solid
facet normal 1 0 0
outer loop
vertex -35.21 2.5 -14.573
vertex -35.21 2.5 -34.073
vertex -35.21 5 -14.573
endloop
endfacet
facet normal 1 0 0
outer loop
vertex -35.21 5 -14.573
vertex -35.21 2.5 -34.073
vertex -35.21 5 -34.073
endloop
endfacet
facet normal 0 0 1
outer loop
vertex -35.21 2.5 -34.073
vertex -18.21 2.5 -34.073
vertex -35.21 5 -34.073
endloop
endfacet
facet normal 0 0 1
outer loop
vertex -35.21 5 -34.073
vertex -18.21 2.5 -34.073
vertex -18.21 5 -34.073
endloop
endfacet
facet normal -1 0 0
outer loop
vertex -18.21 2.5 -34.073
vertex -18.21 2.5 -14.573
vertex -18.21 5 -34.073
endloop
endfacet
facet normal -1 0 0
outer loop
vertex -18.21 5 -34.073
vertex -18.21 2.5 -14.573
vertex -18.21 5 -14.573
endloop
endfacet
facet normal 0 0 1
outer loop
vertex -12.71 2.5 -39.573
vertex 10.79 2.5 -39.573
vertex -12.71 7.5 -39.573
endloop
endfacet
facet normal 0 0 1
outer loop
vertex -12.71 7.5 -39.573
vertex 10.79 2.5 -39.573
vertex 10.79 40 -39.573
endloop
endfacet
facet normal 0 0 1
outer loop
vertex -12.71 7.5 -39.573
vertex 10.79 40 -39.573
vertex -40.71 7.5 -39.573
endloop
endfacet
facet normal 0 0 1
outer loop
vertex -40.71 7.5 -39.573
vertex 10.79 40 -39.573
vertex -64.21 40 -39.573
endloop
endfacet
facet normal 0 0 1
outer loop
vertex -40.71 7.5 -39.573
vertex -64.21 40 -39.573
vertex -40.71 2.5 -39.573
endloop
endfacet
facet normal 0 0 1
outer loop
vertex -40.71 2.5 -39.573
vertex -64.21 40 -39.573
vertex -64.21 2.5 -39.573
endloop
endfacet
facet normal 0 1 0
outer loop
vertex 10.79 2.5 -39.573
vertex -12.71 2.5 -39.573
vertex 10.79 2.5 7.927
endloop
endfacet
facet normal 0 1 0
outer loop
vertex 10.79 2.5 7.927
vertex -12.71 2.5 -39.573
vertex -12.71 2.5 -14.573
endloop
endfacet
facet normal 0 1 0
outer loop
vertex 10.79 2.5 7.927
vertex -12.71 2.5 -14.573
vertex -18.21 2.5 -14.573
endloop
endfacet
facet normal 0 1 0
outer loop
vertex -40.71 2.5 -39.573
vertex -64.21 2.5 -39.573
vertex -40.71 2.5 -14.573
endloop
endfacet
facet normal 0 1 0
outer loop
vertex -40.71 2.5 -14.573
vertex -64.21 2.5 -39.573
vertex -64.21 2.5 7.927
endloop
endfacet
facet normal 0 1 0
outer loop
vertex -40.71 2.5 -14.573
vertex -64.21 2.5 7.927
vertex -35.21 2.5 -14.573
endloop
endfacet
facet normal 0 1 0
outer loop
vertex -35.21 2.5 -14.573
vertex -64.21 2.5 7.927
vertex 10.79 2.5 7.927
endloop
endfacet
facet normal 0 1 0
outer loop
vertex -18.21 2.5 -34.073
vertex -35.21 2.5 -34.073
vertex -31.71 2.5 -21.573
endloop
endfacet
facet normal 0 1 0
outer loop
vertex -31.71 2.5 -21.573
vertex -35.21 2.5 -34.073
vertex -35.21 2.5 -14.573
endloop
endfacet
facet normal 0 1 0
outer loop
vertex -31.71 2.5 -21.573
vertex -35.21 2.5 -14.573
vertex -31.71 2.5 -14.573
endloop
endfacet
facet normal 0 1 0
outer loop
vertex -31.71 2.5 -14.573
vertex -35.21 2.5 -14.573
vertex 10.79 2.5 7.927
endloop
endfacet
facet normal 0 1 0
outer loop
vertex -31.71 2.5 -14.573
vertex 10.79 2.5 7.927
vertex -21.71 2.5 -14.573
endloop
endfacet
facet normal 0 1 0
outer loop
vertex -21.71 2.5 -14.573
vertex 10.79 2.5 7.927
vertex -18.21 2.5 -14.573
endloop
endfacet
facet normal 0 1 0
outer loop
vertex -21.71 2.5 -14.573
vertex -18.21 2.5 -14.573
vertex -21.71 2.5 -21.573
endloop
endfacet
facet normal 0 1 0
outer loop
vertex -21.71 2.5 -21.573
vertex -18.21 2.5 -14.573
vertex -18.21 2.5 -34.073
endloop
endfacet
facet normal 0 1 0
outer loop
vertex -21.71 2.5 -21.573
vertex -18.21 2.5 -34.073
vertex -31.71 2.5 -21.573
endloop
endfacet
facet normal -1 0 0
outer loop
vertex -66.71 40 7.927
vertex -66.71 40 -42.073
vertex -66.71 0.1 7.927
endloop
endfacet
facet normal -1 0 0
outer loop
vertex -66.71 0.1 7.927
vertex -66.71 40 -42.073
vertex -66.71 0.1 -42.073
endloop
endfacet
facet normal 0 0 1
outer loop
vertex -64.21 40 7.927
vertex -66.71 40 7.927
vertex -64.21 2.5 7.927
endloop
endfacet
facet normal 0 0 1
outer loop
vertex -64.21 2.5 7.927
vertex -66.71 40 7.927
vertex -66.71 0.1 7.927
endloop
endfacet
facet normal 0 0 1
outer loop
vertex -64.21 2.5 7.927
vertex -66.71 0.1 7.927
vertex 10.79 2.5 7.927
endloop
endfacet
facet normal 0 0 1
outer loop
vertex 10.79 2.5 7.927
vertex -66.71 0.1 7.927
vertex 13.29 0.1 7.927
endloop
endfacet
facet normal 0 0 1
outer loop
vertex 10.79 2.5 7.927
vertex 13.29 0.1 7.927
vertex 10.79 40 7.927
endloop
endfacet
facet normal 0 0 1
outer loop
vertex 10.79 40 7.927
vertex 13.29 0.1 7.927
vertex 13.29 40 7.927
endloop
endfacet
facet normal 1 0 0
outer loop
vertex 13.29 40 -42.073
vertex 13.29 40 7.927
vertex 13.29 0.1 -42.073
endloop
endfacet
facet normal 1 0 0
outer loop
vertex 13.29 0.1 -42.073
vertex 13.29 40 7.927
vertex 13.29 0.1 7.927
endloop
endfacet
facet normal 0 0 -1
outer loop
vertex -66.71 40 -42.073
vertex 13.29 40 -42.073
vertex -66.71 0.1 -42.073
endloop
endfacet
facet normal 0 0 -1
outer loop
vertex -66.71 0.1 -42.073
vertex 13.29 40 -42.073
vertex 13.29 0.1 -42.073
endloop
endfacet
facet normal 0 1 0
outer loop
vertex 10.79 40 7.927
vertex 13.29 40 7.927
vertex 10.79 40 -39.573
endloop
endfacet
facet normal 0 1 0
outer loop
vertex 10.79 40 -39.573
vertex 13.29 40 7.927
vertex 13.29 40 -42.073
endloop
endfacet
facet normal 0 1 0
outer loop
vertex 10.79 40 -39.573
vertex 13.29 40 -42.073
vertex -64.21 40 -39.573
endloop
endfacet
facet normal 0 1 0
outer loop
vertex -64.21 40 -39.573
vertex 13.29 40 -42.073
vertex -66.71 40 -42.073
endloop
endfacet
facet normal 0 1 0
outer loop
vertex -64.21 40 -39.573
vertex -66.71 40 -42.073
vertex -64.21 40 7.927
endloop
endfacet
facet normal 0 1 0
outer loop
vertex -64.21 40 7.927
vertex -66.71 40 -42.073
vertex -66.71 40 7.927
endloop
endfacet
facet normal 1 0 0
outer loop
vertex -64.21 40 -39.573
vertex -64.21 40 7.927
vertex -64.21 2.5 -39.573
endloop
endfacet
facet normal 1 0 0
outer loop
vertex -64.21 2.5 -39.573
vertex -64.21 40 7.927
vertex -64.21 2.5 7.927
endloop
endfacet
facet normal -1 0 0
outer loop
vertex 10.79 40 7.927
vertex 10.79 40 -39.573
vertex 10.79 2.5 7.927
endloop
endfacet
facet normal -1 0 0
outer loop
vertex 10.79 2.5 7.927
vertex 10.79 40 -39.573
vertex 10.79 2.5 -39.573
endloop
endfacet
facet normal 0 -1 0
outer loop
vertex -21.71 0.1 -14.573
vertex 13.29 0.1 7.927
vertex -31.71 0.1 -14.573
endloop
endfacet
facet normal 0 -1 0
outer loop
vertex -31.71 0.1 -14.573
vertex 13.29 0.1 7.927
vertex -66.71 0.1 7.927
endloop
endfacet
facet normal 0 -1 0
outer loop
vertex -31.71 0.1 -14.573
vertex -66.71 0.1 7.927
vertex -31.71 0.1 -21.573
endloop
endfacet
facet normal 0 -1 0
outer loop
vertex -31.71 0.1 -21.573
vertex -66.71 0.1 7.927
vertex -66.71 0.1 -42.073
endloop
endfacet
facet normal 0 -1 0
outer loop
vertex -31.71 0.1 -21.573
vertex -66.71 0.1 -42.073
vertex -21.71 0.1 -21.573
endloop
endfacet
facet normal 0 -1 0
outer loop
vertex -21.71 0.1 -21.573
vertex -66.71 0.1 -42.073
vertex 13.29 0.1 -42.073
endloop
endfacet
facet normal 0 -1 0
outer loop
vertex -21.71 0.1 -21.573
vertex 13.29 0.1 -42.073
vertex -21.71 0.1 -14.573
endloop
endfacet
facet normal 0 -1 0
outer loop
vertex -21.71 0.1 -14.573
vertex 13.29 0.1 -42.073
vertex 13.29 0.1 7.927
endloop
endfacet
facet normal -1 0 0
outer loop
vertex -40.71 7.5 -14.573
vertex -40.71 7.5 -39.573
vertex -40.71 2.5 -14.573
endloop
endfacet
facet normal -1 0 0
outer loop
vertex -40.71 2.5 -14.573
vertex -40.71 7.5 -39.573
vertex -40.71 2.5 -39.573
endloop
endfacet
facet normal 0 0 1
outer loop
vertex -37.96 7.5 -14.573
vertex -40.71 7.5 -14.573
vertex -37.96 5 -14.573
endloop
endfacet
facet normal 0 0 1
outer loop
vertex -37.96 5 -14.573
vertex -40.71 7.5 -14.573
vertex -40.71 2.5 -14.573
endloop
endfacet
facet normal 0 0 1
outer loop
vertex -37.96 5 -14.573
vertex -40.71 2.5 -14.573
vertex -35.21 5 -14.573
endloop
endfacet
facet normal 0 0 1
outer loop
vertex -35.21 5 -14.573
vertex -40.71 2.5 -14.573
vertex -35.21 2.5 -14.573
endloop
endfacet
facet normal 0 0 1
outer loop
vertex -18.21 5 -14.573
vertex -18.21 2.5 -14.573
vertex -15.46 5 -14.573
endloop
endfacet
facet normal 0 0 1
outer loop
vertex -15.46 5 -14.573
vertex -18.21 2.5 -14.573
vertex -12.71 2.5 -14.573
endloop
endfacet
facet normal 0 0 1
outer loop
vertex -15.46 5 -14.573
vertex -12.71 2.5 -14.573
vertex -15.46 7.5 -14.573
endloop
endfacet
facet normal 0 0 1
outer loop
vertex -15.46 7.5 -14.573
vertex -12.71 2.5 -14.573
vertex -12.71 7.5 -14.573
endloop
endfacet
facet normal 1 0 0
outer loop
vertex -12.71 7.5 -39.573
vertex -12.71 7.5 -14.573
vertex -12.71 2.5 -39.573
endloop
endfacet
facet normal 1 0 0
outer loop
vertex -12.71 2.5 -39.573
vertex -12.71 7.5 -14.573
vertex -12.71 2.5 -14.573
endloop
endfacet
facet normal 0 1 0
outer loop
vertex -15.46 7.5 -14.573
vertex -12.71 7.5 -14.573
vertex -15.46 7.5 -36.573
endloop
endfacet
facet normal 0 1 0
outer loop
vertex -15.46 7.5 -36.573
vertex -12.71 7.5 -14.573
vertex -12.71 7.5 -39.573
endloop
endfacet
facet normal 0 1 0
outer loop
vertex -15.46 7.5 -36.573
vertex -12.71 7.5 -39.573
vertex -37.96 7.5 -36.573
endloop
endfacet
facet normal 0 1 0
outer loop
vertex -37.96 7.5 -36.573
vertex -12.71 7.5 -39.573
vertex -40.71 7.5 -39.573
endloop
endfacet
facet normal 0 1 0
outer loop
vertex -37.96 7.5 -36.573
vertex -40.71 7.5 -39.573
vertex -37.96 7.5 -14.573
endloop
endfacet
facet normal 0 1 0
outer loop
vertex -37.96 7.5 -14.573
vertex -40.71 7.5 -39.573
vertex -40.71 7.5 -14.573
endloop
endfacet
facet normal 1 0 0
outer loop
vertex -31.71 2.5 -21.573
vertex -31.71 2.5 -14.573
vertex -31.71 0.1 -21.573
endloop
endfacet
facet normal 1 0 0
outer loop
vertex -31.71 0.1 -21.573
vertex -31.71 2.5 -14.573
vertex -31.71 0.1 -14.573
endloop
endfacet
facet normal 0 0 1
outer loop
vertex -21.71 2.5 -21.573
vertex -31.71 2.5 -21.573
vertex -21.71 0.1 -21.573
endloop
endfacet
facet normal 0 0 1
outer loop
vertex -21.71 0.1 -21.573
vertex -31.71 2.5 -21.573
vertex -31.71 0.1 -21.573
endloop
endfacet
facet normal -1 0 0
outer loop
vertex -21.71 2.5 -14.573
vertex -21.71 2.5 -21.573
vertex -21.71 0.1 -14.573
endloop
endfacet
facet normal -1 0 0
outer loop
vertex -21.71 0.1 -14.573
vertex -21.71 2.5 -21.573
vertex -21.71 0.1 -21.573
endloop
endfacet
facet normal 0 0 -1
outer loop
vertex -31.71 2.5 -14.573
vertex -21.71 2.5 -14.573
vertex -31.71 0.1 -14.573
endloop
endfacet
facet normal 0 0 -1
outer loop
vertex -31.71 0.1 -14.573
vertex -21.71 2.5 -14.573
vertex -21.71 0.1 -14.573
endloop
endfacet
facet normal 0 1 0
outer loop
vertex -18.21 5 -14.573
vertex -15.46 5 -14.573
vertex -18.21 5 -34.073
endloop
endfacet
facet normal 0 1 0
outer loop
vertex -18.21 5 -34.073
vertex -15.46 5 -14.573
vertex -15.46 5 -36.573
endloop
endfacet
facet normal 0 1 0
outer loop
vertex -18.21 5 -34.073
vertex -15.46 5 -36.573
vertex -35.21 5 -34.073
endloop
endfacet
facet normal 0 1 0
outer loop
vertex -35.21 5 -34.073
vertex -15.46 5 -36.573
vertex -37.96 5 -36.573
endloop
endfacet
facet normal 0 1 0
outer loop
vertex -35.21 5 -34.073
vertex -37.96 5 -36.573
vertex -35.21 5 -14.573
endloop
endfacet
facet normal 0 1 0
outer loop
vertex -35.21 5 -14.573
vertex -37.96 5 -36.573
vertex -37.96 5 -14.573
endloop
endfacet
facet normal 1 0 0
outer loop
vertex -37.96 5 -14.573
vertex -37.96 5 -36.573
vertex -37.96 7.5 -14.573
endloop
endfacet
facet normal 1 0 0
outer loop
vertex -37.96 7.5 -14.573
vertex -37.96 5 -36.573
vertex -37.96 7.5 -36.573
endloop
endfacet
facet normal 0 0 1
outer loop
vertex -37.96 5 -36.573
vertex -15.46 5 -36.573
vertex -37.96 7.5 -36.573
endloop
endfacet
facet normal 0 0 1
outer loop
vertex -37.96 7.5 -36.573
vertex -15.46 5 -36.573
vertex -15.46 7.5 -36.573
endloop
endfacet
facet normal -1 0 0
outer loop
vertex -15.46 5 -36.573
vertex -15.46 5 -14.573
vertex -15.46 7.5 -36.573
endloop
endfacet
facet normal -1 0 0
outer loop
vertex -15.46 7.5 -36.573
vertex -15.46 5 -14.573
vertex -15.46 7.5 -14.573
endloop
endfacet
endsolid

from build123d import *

# Parameters (mm, degrees)
SKETCH1_W           = 80
SKETCH1_H           = 50
BOSS_EXTRUDE1_DEPTH = 2.5
SKETCH2_W           = 80
SKETCH2_H           = 50
SKETCH2_W_2         = 75
SKETCH2_H_2         = 45
BOSS_EXTRUDE2_DEPTH = 37.5
CUT_EXTRUDE2_DEPTH  = 2.5
SKETCH11_W          = 80
SKETCH11_H          = 50
CUT_EXTRUDE10_DEPTH = 0.1
BOSS_EXTRUDE4_DEPTH = 5
SKETCH8_W           = 10
SKETCH8_H           = 7
CUT_EXTRUDE14_DEPTH = 10
SKETCH15_W          = 75
SKETCH15_H          = 37.5
CUT_EXTRUDE15_DEPTH = 10
SKETCH14_W          = 22.5
SKETCH14_H          = 22
CUT_EXTRUDE16_DEPTH = 2.5


with BuildPart() as part:
    # Sketch1 → Boss-Extrude1 (new body)
    with BuildSketch(Plane(origin=(0, 0, 0), x_dir=(1, 0, 0), z_dir=(0, 1, 0))):
        with Locations((-26.709650323, 17.072563556)):
            Rectangle(SKETCH1_W, SKETCH1_H)
    extrude(amount=BOSS_EXTRUDE1_DEPTH)

    # Sketch2 → Boss-Extrude2 (add)
    with BuildSketch(Plane(origin=(0, 2.5, 0), x_dir=(1, 0, 0), z_dir=(0, 1, 0))):
        with Locations((-26.709650323, 17.072563556)):
            Rectangle(SKETCH2_W, SKETCH2_H)
        with Locations((-26.709650323, 17.072563556)):
            Rectangle(SKETCH2_W_2, SKETCH2_H_2, mode=Mode.SUBTRACT)
    extrude(amount=BOSS_EXTRUDE2_DEPTH)

    # Sketch5 → Cut-Extrude2 (cut)
    with BuildSketch(Plane.XY.offset(7.927436444)):
        with BuildLine():
            Line((-20.404890216, 2.5), (-33.014410429, 2.5))
            ThreePointArc((-33.014410429, 2.5), (-26.709650323, 29), (-20.404890216, 2.5))
        make_face()
    extrude(amount=-CUT_EXTRUDE2_DEPTH, mode=Mode.SUBTRACT)

    # Sketch11 → Cut-Extrude10 (cut)
    with BuildSketch(Plane(origin=(0, 0, 0), x_dir=(-1, 0, 0), z_dir=(0, -1, 0))):
        with Locations((26.709650323, 17.072563556)):
            Rectangle(SKETCH11_W, SKETCH11_H)
    extrude(amount=-CUT_EXTRUDE10_DEPTH, mode=Mode.SUBTRACT)

    # Sketch6 → Boss-Extrude4 (add)
    with BuildSketch(Plane(origin=(0, 2.5, 0), x_dir=(1, 0, 0), z_dir=(0, 1, 0))):
        Polygon((-40.709650323, 39.572563556), (-12.709650323, 39.572563556), (-12.709650323, 14.572563556), (-18.209650323, 14.572563556), (-18.209650323, 34.072563556), (-35.209650323, 34.072563556), (-35.209650323, 14.572563556), (-40.709650323, 14.572563556), align=None)
    extrude(amount=BOSS_EXTRUDE4_DEPTH)

    # Sketch8 → Cut-Extrude14 (cut)
    with BuildSketch(Plane(origin=(0, 2.5, 0), x_dir=(1, 0, 0), z_dir=(0, 1, 0))):
        with Locations((-26.709650323, 18.072563556)):
            Rectangle(SKETCH8_W, SKETCH8_H)
    extrude(amount=-CUT_EXTRUDE14_DEPTH, mode=Mode.SUBTRACT)

    # Sketch15 → Cut-Extrude15 (cut)
    with BuildSketch(Plane(origin=(0, 0, 5.427436444), x_dir=(-1, 0, 0), z_dir=(0, 0, -1))):
        with Locations((26.709650323, 21.25)):
            Rectangle(SKETCH15_W, SKETCH15_H)
    extrude(amount=-CUT_EXTRUDE15_DEPTH, mode=Mode.SUBTRACT)

    # Sketch14 → Cut-Extrude16 (cut)
    with BuildSketch(Plane(origin=(0, 7.5, 0), x_dir=(1, 0, 0), z_dir=(0, 1, 0))):
        with Locations((-26.709650323, 25.572563556)):
            Rectangle(SKETCH14_W, SKETCH14_H)
    extrude(amount=-CUT_EXTRUDE16_DEPTH, mode=Mode.SUBTRACT)


solid = part.part
